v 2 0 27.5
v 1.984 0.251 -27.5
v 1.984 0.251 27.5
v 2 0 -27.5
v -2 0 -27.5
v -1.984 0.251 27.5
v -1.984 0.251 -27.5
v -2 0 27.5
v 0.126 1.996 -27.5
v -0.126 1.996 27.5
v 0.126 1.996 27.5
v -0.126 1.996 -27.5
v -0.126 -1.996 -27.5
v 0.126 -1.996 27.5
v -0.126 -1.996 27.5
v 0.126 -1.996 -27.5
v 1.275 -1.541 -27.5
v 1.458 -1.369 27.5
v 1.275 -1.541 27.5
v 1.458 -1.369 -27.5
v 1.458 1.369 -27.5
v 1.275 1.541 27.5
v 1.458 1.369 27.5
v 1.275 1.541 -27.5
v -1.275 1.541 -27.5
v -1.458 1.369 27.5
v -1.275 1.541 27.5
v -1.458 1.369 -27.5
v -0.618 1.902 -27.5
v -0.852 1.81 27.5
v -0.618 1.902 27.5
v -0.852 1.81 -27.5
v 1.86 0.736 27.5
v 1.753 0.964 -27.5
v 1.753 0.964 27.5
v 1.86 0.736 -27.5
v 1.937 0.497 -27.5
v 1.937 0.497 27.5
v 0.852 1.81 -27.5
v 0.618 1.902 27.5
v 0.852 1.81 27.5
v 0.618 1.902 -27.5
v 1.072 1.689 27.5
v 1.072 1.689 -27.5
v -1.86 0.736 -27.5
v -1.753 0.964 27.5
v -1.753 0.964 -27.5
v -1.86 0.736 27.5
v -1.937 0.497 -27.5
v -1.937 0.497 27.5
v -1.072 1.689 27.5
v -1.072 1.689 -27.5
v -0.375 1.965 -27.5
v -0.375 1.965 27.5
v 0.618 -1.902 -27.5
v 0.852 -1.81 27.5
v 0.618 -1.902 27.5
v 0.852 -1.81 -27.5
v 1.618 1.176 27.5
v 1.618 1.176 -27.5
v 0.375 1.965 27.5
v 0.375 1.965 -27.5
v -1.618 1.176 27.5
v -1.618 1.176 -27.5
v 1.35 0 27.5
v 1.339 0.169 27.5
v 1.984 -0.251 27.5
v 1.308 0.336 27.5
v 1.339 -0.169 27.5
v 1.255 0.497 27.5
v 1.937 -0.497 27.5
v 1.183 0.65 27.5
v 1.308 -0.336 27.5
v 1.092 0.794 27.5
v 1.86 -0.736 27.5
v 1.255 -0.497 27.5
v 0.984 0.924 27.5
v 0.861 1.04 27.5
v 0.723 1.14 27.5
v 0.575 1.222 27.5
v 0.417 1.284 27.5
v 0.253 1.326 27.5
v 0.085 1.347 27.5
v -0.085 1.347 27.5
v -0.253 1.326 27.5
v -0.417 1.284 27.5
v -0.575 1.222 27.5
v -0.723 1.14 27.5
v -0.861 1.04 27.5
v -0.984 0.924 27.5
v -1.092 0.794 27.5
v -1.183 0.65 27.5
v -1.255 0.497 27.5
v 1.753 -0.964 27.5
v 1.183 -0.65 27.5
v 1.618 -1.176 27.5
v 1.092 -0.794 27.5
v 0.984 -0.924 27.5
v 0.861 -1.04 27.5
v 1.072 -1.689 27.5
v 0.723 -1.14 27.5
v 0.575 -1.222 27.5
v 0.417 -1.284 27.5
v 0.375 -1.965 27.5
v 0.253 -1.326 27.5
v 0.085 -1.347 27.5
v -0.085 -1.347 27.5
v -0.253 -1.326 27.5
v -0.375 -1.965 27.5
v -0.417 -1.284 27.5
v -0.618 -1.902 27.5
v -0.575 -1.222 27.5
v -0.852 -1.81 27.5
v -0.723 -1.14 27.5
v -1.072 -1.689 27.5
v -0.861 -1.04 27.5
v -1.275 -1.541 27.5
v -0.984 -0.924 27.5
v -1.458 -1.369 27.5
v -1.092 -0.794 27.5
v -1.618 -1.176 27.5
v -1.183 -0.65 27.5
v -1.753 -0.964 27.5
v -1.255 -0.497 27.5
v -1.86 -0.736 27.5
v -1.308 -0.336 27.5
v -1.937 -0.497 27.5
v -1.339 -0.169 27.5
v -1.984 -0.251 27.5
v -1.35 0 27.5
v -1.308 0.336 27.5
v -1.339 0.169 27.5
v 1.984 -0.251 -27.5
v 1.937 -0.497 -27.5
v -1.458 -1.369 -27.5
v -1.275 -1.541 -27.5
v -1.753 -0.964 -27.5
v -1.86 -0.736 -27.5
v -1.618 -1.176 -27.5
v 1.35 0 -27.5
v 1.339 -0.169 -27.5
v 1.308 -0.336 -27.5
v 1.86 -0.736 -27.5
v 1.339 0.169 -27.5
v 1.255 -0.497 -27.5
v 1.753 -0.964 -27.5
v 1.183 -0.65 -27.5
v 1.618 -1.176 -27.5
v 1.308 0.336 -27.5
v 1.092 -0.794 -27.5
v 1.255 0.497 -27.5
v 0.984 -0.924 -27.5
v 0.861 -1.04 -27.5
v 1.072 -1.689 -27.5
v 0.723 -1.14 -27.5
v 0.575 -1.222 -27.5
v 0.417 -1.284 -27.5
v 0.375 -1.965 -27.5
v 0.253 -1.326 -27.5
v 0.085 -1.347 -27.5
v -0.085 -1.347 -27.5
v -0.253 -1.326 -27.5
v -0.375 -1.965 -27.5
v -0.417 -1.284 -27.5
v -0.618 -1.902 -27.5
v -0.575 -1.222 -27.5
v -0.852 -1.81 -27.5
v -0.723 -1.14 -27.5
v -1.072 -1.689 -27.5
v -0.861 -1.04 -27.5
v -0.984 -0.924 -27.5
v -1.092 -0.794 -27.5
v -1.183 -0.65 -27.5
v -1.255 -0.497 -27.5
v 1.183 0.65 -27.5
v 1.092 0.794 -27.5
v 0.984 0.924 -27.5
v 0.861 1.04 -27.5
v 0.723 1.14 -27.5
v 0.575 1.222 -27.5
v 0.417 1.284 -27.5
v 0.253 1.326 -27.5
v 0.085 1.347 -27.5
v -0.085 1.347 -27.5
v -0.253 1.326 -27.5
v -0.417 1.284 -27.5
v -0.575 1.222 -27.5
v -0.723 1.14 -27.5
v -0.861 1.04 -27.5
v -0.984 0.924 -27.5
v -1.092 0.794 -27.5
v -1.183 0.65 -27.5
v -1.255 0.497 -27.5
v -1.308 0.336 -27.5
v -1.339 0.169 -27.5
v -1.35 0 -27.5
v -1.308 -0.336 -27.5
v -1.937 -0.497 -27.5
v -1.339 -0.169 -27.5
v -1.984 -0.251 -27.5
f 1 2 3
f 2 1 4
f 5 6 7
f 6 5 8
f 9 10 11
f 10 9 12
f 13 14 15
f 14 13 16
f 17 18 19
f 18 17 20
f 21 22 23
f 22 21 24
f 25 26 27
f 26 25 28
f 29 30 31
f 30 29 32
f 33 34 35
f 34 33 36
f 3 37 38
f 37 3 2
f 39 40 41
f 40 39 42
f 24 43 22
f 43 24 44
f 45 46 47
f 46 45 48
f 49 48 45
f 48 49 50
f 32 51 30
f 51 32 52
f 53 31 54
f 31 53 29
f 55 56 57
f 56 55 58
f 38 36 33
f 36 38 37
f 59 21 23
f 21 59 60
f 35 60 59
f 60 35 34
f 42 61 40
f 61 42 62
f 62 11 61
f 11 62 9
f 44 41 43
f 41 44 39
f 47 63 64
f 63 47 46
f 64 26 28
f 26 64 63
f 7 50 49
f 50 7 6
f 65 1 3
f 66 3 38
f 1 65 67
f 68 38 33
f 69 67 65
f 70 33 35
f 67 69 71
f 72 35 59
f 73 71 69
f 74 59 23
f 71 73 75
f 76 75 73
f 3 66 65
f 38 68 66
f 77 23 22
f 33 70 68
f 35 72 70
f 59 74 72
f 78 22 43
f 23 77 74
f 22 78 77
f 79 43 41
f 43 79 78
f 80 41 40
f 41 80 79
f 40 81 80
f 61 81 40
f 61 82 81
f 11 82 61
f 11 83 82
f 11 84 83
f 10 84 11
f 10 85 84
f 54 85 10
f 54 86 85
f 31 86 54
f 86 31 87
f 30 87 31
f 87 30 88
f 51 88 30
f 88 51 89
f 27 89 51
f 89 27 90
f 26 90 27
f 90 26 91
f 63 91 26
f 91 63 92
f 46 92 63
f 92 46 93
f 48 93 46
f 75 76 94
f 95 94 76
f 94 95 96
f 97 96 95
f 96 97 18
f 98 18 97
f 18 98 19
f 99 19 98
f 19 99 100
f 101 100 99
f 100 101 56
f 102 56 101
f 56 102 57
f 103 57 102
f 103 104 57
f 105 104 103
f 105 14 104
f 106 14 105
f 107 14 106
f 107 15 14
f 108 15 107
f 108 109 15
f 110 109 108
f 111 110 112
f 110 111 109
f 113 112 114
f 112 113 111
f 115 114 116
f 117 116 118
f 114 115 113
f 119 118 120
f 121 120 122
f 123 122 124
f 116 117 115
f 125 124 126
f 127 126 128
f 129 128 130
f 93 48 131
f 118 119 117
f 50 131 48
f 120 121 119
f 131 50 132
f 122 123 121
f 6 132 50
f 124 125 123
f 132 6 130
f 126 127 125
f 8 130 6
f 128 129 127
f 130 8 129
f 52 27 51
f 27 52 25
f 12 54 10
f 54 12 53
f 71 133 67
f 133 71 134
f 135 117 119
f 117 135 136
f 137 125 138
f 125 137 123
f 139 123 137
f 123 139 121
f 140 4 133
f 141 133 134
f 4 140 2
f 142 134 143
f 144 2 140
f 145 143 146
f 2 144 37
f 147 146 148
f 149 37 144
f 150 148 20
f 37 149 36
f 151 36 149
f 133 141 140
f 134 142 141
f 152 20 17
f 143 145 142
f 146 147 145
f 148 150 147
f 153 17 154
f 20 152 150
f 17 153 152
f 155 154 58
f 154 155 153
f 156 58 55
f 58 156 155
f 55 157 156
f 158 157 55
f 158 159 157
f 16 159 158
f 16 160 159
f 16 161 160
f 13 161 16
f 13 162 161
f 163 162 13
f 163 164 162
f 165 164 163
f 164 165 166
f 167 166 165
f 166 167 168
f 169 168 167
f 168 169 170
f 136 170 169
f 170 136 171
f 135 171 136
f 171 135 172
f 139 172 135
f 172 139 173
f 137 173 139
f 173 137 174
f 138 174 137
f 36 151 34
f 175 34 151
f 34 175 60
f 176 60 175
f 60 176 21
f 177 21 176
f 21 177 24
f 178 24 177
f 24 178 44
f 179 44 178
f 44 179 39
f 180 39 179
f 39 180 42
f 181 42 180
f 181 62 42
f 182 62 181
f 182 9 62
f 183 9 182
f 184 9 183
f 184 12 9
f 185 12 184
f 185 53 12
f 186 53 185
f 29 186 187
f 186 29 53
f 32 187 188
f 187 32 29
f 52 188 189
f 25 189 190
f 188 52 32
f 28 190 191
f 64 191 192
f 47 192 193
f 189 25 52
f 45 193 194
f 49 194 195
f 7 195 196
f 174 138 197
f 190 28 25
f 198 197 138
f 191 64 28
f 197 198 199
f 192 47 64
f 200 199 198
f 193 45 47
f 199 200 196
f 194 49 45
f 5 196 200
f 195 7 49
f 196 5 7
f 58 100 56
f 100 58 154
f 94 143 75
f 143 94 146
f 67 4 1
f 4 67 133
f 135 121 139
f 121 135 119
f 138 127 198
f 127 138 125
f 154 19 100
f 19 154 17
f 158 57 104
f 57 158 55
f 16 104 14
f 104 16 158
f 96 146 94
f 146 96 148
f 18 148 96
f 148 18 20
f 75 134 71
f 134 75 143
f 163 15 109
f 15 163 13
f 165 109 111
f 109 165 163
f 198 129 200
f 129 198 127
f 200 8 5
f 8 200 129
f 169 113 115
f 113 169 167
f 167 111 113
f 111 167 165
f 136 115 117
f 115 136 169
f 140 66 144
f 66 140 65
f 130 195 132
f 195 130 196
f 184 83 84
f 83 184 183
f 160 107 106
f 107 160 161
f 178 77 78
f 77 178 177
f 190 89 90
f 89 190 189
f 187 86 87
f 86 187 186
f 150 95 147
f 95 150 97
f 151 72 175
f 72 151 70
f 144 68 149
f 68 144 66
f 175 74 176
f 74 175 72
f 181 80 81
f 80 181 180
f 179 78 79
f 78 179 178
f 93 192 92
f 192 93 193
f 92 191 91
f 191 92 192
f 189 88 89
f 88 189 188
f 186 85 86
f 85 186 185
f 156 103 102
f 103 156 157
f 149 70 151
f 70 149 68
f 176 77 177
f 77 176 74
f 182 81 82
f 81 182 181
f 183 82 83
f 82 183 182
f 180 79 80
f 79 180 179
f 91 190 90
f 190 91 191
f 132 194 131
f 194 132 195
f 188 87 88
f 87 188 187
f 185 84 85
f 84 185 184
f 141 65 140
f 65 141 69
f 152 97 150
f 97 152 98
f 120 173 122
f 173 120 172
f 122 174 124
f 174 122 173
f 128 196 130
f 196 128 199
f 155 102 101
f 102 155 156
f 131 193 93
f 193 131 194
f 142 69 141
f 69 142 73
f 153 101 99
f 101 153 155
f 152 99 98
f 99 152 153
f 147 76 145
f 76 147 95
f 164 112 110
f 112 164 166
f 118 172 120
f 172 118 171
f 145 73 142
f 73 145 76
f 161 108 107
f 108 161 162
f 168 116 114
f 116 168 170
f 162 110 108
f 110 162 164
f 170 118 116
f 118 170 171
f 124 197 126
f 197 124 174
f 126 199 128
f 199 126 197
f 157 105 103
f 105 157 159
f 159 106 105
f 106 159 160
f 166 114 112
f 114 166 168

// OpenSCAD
$fn = 50;


difference() {
	union() {
		translate(v = [0, 0, -27.5000000000]) {
			cylinder(h = 55, r = 2.0000000000);
		}
	}
	union() {
		translate(v = [0, 0, -100.0000000000]) {
			cylinder(h = 200, r = 1.3500000000);
		}
	}
}
